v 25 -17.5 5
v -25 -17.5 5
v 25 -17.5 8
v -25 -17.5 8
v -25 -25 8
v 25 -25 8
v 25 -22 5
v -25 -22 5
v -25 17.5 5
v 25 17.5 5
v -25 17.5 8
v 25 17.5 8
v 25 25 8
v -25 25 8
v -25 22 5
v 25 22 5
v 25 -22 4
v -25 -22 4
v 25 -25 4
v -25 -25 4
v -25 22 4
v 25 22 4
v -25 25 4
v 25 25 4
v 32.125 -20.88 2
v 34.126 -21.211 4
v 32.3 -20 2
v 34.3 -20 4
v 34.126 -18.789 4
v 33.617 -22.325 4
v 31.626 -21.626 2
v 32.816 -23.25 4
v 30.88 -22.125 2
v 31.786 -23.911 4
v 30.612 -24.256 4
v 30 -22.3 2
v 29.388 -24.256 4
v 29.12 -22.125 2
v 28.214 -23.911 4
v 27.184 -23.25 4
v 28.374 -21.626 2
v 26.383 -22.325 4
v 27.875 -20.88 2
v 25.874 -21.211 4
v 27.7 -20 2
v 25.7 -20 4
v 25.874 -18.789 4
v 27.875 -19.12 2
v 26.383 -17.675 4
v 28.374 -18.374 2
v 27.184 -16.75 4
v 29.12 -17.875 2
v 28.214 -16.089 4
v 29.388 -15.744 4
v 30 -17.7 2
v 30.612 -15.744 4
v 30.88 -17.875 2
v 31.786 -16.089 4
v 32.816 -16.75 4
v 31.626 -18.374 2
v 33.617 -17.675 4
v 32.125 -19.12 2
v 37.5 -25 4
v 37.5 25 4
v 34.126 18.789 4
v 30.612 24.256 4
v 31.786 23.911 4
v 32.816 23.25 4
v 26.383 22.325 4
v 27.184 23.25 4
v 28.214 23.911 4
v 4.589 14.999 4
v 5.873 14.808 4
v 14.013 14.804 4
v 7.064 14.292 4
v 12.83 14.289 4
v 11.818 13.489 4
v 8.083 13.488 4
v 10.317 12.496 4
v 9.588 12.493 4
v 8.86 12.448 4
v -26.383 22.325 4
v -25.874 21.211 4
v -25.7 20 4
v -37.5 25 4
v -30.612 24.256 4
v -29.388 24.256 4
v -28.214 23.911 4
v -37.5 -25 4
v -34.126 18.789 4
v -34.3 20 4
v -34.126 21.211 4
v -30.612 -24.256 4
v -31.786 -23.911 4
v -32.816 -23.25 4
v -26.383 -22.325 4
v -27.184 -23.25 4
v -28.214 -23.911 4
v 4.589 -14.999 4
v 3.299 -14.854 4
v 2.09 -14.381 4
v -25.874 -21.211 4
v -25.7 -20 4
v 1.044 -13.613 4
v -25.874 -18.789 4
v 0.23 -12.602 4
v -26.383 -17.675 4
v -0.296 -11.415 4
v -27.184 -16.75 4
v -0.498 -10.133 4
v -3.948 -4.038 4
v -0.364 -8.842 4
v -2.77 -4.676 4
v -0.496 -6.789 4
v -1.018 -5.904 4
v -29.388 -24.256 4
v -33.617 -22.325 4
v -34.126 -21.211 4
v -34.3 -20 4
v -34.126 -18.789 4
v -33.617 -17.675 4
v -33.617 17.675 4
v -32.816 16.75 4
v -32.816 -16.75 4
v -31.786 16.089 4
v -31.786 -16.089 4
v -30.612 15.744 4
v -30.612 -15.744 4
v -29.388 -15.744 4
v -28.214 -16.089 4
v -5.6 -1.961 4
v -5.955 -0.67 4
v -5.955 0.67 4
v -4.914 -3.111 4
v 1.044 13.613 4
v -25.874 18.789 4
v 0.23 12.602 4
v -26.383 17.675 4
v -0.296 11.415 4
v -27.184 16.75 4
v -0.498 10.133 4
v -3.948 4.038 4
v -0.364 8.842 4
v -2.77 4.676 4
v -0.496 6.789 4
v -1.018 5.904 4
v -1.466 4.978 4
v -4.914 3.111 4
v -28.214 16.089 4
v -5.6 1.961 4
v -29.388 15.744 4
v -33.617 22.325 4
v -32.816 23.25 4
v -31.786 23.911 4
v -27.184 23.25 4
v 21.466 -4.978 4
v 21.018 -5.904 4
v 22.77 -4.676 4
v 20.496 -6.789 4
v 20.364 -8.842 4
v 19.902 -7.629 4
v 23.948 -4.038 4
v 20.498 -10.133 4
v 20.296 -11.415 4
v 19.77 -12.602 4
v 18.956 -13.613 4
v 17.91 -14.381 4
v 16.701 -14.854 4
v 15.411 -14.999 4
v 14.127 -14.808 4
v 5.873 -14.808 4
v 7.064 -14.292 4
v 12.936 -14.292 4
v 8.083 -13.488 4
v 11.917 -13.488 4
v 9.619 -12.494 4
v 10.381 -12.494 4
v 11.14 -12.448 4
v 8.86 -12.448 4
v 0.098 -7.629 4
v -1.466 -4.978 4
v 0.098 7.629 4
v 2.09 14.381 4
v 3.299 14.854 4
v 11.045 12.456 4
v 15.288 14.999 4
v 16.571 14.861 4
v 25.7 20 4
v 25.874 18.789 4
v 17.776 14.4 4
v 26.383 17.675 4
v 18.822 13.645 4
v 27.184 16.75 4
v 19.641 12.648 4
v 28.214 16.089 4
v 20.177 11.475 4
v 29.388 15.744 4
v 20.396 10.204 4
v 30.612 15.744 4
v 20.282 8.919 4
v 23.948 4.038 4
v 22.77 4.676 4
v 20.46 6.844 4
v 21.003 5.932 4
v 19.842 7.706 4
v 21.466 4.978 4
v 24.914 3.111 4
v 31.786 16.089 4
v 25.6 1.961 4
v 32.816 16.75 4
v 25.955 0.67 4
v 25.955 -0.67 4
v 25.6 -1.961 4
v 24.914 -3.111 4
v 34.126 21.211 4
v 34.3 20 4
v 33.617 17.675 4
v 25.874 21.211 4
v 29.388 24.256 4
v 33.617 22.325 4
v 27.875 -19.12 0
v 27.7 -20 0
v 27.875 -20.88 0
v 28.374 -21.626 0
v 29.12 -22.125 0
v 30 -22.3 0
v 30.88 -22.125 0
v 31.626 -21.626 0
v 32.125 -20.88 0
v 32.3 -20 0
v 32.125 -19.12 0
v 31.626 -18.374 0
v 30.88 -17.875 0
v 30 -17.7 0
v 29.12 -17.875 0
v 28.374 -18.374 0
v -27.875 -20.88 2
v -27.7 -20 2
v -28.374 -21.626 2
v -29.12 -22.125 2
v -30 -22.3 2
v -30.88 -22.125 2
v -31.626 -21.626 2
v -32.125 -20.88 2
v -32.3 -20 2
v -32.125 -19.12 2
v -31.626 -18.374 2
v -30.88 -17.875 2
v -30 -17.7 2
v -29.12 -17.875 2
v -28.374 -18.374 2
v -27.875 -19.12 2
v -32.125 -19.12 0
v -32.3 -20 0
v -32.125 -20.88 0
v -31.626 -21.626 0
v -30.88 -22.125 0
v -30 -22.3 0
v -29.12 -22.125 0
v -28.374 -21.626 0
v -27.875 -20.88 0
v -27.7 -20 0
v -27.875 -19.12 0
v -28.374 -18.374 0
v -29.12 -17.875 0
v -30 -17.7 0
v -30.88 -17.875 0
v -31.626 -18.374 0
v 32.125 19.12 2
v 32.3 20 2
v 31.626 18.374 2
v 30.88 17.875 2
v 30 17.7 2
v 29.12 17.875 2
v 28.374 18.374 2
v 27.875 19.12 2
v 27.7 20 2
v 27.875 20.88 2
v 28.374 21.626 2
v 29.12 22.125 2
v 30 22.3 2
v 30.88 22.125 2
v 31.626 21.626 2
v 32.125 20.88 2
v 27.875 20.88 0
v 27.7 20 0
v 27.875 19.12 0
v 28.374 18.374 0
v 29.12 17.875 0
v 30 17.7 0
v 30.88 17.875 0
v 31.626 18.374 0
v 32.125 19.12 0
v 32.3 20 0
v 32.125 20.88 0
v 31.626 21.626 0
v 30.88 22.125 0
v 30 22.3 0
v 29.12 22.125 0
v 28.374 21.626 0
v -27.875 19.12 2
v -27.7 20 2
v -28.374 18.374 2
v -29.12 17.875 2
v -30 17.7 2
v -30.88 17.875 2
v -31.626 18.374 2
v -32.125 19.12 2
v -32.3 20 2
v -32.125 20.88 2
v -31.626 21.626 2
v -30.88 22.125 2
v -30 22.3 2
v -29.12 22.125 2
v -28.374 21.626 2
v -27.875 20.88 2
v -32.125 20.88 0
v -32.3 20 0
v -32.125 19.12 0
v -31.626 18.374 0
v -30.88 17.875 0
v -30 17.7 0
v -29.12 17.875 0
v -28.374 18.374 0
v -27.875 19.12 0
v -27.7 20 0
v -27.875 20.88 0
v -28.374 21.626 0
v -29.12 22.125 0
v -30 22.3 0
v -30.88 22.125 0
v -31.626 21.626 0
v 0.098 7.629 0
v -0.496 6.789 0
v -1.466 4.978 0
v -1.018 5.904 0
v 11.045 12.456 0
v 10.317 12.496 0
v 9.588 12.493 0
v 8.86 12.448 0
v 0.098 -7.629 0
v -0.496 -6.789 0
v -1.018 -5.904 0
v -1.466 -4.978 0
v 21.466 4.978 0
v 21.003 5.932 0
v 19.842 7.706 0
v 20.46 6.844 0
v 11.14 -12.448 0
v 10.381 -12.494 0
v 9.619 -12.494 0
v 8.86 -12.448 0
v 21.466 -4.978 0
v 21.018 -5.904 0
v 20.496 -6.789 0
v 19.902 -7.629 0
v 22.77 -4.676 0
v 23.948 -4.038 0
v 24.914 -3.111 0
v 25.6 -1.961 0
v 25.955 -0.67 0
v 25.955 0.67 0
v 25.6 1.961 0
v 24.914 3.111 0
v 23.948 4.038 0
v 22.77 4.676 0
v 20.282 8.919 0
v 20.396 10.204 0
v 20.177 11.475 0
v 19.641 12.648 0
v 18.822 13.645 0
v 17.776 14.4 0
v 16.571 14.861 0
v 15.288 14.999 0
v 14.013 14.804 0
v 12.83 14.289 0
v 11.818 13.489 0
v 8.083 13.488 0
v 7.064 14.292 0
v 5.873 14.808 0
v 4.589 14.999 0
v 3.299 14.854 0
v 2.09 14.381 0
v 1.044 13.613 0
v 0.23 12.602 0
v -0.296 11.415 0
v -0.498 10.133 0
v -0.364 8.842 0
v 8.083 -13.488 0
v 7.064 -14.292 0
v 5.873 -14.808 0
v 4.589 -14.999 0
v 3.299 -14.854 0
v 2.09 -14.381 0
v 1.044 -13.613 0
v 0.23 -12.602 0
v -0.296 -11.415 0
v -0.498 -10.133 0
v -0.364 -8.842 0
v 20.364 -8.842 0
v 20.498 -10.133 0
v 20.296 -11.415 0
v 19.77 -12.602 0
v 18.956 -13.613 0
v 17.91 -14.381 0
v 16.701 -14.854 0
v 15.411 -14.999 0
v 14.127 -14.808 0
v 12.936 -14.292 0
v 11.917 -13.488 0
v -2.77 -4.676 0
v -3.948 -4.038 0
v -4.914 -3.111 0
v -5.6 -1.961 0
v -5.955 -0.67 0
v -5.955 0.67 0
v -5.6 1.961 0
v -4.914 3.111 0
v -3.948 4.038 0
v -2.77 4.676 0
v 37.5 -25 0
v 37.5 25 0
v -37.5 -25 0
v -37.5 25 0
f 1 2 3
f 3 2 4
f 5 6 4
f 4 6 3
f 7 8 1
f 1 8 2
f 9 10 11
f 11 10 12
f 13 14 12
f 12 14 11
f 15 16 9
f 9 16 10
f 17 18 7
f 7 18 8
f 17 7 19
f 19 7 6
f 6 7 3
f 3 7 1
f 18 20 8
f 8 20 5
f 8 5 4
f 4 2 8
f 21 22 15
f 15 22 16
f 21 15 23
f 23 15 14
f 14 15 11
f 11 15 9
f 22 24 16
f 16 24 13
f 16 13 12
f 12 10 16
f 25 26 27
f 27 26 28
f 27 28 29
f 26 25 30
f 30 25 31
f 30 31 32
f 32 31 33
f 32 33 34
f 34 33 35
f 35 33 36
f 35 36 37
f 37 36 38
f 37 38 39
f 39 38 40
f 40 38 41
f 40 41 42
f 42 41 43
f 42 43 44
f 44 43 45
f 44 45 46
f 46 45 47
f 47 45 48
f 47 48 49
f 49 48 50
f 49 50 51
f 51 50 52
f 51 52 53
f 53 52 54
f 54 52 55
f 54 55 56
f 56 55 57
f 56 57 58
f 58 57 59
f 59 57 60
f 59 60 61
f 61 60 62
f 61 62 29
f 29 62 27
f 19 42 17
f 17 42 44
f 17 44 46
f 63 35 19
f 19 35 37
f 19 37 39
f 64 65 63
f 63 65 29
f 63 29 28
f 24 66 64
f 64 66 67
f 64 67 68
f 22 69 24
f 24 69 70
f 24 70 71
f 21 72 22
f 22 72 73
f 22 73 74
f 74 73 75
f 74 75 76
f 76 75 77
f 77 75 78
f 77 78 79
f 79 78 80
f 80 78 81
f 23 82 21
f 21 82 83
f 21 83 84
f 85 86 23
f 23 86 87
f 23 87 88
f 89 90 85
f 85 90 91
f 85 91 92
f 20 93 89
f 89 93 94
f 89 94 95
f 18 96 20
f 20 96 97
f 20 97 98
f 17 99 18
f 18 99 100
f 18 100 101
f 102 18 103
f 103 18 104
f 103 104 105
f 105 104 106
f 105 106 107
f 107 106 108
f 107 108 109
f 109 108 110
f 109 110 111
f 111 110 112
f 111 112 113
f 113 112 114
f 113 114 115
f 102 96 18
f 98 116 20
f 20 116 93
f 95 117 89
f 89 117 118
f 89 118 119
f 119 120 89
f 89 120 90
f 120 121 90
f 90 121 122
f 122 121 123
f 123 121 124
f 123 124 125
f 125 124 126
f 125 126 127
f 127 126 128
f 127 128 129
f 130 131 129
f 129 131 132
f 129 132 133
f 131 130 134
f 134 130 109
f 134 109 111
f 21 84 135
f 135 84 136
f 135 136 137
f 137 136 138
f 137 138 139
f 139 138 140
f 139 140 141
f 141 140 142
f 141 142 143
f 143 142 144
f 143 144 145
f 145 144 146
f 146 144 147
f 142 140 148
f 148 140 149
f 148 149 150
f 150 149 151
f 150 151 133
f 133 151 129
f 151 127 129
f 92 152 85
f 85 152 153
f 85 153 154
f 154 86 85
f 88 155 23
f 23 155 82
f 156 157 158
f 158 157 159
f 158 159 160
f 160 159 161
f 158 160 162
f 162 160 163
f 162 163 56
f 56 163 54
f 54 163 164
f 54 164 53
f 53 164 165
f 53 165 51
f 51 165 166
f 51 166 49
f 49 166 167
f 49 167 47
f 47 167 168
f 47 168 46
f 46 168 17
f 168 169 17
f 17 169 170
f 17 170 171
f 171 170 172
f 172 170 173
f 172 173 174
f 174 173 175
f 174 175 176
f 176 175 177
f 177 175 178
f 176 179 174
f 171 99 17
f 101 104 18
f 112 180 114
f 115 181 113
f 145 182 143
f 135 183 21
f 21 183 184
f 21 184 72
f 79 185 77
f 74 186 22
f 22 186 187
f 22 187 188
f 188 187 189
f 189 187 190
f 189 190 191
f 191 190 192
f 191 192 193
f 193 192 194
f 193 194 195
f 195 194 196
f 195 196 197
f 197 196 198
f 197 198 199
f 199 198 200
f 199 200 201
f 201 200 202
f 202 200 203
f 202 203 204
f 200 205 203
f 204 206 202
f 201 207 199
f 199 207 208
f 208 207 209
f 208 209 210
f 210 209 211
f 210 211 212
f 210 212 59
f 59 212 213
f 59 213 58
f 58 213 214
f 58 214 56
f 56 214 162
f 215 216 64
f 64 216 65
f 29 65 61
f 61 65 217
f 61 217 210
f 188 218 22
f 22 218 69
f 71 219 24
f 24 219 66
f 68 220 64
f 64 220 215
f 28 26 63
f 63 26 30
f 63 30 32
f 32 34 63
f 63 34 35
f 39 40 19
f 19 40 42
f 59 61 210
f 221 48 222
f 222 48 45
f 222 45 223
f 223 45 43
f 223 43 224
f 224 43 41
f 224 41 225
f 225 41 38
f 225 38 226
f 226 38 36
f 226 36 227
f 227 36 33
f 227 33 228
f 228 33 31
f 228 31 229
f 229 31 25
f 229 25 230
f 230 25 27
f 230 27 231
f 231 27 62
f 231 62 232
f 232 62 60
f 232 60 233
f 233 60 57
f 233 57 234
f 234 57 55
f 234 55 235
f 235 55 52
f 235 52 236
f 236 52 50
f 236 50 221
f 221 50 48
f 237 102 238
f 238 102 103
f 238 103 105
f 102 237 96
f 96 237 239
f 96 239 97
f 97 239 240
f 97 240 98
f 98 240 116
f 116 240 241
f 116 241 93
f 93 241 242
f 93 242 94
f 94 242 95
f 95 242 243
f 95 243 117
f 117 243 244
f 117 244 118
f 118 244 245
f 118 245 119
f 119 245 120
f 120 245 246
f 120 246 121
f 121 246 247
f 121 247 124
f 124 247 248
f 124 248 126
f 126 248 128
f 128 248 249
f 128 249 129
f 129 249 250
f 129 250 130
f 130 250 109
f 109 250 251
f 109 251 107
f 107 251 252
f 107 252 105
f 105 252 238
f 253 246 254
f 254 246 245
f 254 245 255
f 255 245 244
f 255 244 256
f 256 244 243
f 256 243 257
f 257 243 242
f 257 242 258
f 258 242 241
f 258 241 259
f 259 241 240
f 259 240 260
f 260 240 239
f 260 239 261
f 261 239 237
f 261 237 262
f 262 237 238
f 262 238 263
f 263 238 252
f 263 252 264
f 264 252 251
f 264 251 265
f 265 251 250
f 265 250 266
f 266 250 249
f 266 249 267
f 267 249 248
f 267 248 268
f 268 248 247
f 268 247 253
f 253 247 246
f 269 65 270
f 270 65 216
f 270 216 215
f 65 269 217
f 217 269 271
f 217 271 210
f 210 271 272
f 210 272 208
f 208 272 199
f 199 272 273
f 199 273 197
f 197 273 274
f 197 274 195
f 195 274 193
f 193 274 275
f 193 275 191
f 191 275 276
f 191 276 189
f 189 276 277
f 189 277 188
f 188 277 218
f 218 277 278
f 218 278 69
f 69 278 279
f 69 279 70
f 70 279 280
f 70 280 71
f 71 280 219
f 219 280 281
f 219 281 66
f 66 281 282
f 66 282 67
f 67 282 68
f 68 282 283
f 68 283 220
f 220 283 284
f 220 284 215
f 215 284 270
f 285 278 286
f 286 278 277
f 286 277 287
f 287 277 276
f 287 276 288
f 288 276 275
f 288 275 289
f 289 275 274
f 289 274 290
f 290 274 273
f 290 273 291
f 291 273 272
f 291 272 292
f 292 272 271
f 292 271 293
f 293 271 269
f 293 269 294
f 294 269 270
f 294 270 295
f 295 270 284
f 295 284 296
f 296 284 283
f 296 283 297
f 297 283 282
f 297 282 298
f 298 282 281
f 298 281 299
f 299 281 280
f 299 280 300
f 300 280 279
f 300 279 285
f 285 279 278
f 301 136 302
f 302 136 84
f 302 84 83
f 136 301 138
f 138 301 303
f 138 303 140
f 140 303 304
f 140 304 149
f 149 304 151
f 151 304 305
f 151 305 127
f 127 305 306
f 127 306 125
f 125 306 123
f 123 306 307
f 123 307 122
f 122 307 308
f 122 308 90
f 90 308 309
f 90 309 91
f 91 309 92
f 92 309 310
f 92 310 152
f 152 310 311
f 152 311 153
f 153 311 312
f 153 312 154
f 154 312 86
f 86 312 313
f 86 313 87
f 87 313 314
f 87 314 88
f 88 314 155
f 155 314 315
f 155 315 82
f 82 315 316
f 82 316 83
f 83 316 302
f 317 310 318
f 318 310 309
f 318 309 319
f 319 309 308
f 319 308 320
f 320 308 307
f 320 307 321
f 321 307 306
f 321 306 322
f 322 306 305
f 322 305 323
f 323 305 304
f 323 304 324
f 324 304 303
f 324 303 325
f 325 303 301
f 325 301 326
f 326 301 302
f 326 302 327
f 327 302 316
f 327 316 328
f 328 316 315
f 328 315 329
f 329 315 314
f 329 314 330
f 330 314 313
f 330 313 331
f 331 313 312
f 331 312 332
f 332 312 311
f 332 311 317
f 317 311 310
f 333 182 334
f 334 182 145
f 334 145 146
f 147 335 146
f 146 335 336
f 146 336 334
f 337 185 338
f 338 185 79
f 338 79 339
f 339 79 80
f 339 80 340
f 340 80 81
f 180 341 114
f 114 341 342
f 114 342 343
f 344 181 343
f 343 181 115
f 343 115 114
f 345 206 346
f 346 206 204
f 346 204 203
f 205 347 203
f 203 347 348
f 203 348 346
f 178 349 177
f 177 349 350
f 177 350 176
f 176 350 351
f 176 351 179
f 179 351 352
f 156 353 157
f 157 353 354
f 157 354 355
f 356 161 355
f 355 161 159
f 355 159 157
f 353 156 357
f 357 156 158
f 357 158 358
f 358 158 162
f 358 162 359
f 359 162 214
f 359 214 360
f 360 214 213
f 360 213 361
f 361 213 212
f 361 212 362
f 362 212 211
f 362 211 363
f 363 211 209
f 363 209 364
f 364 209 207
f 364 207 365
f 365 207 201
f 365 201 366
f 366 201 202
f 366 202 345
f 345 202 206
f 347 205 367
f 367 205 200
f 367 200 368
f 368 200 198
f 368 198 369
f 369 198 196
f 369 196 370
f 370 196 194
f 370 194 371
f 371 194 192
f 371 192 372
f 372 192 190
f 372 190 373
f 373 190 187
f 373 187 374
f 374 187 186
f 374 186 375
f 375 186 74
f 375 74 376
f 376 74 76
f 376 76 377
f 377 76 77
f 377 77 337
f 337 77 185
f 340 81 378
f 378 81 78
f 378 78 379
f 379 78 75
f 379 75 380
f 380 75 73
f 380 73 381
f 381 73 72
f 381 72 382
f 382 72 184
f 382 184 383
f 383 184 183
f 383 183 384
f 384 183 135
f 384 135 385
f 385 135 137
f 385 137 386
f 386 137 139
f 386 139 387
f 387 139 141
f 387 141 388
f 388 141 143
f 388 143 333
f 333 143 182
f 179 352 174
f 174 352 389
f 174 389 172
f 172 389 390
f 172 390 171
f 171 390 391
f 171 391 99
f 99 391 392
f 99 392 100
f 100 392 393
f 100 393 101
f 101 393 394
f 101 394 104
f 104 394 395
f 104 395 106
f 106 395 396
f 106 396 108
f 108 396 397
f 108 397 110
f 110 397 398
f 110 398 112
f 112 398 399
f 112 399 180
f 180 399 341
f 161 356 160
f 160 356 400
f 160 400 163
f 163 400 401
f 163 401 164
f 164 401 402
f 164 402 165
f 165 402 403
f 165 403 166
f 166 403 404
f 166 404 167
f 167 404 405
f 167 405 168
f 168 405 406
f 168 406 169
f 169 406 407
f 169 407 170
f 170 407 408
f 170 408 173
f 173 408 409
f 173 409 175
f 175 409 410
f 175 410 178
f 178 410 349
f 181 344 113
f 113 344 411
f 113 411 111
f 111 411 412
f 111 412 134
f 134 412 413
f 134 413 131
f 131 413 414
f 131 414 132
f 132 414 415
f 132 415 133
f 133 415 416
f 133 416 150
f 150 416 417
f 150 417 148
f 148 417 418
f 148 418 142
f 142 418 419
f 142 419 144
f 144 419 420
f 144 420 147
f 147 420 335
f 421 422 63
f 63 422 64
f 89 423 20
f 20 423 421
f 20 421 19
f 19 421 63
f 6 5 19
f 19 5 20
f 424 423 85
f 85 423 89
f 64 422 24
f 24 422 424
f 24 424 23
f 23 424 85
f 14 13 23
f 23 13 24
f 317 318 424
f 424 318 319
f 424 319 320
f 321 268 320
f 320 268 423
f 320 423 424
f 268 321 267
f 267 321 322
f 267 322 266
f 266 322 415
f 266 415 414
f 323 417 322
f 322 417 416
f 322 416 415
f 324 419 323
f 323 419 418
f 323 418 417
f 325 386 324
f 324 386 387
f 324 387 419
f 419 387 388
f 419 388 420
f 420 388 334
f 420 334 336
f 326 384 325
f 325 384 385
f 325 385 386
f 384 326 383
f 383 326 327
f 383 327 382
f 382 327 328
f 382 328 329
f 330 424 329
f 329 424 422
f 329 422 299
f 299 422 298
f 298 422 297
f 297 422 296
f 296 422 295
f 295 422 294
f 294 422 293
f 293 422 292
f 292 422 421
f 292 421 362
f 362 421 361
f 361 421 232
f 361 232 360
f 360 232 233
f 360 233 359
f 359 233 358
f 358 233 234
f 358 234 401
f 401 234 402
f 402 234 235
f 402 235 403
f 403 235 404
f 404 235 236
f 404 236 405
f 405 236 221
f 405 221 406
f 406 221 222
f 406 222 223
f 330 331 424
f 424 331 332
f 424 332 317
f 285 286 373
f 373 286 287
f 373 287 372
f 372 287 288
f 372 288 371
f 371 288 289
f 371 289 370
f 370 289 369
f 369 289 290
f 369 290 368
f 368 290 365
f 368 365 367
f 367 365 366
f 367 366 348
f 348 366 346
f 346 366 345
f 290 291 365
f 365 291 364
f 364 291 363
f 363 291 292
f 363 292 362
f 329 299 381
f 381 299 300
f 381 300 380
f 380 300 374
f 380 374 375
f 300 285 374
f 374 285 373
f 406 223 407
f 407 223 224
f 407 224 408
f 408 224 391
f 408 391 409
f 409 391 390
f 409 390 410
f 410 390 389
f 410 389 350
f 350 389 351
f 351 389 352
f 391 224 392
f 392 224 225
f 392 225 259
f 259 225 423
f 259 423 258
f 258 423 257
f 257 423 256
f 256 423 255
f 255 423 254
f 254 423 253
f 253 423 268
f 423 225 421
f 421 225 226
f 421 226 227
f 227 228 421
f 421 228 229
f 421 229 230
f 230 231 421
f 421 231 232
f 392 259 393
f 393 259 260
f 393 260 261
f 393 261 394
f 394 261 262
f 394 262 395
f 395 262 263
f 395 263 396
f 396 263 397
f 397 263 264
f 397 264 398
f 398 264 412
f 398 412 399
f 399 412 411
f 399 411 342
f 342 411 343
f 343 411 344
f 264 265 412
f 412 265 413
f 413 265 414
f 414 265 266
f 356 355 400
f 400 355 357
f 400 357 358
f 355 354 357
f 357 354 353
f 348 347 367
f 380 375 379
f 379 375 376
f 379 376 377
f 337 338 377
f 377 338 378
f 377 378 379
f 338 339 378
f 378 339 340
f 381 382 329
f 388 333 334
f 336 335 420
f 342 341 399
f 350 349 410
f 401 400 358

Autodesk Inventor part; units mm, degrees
ref_plane "YZ Plane" through (0, 0, 0) normal (1, 0, 0) x (0, 1, 0)
ref_plane "XZ Plane" through (0, 0, 0) normal (0, 1, 0) x (-1, 0, 0)
ref_plane "XY Plane" through (0, 0, 0) normal (0, 0, 1) x (1, 0, 0)
sketch "Sketch1" plane through (0, 0, 0) normal (0, 0, 1) x (1, 0, 0)
  line L0 (37.5, -25) -> (-37.5, -25)
  line L1 (-37.5, -25) -> (-37.5, 25)
  line L2 (-37.5, 25) -> (37.5, 25)
  line L3 (37.5, 25) -> (37.5, -25)
  line L4 (37.5, -25) -> (-37.5, 25) construction
  line L5 (-37.5, -25) -> (37.5, 25) construction
  point P0 (0, 0)
  dimension "d0" = 75
  dimension "d1" = 50
extrude "Extrusion1" add sketch "Sketch1" along normal blind 4
sketch "Sketch2" plane through (0, 0, 4) normal (0, 0, 1) x (1, 0, 0)
  point P0 (0, 0)
  point P1 (15.4, 10)
  point P2 (21, 0)
  point P3 (15.5, -10)
  point P4 (4.5, 10)
  point P5 (4.5, -10)
  point P6 (-1, 0)
hole "Hole1" at (15.4, 10, 4) at (21, 0, 4) at (15.5, -10, 4) at (4.5, 10, 4) at (4.5, -10, 4) at (-1, 0, 4) direction (0, 0, -1) diameter 10 end through all
sketch "Sketch3" plane through (0, 0, 4) normal (0, 0, 1) x (1, 0, 0)
  circle A0 centre (10, 0) radius 12.5
  line L0 (37.5, -25) -> (37.5, 25) projected
  point P0 (0, 0)
  dimension "d11" = 25
  dimension "d24" = 27.5
extrude "Extrusion2" cut sketch "Sketch3" against normal blind 10
sketch "Sketch4" plane through (0, 0, 4) normal (0, 0, 1) x (1, 0, 0)
  point P0 (0, 0)
  point P1 (30, 20)
  point P2 (30, -20)
  point P3 (-30, 20)
  point P4 (-30, -20)
hole "Hole2" at (30, 20, 4) at (30, -20, 4) at (-30, 20, 4) at (-30, -20, 4) direction (0, 0, -1) diameter 4.6 end through all
chamfer "Chamfer1" distance 2 angle 45 4 edges at (-30, -17.7, 4) (30, -17.7, 4) (-30, 22.3, 4) (30, 22.3, 4)
sketch "Sketch5" plane through (0, 0, 4) normal (0, 0, 1) x (1, 0, 0)
  point P0 (0, 0)
sketch "Sketch6" plane through (0, 0, 4) normal (0, 0, 1) x (1, 0, 0)
  line L0 (37.5, 25) -> (-37.5, 25) projected
  line L1 (-25, 25) -> (25, 25)
  line L2 (25, 25) -> (25, 22)
  line L3 (25, 22) -> (-25, 22)
  line L4 (-25, 22) -> (-25, 25)
  line L5 (-37.5, -25) -> (37.5, -25) projected
  line L6 (-25, -25) -> (25, -25)
  line L7 (25, -25) -> (25, -22)
  line L8 (25, -22) -> (-25, -22)
  line L9 (-25, -22) -> (-25, -25)
  point P0 (0, 0)
  dimension "d25" = 50
  dimension "d26" = 3
  dimension "d27" = 3
extrude "Extrusion3" add sketch "Sketch6" along normal blind 1
sketch "Sketch7" plane through (0, 0, 5) normal (0, 0, 1) x (1, 0, 0)
  line L0 (-25, 25) -> (-25, 22) projected
  line L1 (-25, 25) -> (25, 25)
  line L2 (25, 25) -> (25, 17.5)
  line L3 (25, 17.5) -> (-25, 17.5)
  line L4 (-25, 17.5) -> (-25, 25)
  line L5 (-37.5, -25) -> (37.5, -25) projected
  line L6 (-25, -25) -> (25, -25)
  line L7 (25, -25) -> (25, -17.5)
  line L8 (25, -17.5) -> (-25, -17.5)
  line L9 (-25, -17.5) -> (-25, -25)
  point P0 (0, 0)
  dimension "d30" = 50
  dimension "d31" = 7.5
  dimension "d32" = 7.5
extrude "Extrusion4" add sketch "Sketch7" along normal blind 3
properties part number "lid support"
